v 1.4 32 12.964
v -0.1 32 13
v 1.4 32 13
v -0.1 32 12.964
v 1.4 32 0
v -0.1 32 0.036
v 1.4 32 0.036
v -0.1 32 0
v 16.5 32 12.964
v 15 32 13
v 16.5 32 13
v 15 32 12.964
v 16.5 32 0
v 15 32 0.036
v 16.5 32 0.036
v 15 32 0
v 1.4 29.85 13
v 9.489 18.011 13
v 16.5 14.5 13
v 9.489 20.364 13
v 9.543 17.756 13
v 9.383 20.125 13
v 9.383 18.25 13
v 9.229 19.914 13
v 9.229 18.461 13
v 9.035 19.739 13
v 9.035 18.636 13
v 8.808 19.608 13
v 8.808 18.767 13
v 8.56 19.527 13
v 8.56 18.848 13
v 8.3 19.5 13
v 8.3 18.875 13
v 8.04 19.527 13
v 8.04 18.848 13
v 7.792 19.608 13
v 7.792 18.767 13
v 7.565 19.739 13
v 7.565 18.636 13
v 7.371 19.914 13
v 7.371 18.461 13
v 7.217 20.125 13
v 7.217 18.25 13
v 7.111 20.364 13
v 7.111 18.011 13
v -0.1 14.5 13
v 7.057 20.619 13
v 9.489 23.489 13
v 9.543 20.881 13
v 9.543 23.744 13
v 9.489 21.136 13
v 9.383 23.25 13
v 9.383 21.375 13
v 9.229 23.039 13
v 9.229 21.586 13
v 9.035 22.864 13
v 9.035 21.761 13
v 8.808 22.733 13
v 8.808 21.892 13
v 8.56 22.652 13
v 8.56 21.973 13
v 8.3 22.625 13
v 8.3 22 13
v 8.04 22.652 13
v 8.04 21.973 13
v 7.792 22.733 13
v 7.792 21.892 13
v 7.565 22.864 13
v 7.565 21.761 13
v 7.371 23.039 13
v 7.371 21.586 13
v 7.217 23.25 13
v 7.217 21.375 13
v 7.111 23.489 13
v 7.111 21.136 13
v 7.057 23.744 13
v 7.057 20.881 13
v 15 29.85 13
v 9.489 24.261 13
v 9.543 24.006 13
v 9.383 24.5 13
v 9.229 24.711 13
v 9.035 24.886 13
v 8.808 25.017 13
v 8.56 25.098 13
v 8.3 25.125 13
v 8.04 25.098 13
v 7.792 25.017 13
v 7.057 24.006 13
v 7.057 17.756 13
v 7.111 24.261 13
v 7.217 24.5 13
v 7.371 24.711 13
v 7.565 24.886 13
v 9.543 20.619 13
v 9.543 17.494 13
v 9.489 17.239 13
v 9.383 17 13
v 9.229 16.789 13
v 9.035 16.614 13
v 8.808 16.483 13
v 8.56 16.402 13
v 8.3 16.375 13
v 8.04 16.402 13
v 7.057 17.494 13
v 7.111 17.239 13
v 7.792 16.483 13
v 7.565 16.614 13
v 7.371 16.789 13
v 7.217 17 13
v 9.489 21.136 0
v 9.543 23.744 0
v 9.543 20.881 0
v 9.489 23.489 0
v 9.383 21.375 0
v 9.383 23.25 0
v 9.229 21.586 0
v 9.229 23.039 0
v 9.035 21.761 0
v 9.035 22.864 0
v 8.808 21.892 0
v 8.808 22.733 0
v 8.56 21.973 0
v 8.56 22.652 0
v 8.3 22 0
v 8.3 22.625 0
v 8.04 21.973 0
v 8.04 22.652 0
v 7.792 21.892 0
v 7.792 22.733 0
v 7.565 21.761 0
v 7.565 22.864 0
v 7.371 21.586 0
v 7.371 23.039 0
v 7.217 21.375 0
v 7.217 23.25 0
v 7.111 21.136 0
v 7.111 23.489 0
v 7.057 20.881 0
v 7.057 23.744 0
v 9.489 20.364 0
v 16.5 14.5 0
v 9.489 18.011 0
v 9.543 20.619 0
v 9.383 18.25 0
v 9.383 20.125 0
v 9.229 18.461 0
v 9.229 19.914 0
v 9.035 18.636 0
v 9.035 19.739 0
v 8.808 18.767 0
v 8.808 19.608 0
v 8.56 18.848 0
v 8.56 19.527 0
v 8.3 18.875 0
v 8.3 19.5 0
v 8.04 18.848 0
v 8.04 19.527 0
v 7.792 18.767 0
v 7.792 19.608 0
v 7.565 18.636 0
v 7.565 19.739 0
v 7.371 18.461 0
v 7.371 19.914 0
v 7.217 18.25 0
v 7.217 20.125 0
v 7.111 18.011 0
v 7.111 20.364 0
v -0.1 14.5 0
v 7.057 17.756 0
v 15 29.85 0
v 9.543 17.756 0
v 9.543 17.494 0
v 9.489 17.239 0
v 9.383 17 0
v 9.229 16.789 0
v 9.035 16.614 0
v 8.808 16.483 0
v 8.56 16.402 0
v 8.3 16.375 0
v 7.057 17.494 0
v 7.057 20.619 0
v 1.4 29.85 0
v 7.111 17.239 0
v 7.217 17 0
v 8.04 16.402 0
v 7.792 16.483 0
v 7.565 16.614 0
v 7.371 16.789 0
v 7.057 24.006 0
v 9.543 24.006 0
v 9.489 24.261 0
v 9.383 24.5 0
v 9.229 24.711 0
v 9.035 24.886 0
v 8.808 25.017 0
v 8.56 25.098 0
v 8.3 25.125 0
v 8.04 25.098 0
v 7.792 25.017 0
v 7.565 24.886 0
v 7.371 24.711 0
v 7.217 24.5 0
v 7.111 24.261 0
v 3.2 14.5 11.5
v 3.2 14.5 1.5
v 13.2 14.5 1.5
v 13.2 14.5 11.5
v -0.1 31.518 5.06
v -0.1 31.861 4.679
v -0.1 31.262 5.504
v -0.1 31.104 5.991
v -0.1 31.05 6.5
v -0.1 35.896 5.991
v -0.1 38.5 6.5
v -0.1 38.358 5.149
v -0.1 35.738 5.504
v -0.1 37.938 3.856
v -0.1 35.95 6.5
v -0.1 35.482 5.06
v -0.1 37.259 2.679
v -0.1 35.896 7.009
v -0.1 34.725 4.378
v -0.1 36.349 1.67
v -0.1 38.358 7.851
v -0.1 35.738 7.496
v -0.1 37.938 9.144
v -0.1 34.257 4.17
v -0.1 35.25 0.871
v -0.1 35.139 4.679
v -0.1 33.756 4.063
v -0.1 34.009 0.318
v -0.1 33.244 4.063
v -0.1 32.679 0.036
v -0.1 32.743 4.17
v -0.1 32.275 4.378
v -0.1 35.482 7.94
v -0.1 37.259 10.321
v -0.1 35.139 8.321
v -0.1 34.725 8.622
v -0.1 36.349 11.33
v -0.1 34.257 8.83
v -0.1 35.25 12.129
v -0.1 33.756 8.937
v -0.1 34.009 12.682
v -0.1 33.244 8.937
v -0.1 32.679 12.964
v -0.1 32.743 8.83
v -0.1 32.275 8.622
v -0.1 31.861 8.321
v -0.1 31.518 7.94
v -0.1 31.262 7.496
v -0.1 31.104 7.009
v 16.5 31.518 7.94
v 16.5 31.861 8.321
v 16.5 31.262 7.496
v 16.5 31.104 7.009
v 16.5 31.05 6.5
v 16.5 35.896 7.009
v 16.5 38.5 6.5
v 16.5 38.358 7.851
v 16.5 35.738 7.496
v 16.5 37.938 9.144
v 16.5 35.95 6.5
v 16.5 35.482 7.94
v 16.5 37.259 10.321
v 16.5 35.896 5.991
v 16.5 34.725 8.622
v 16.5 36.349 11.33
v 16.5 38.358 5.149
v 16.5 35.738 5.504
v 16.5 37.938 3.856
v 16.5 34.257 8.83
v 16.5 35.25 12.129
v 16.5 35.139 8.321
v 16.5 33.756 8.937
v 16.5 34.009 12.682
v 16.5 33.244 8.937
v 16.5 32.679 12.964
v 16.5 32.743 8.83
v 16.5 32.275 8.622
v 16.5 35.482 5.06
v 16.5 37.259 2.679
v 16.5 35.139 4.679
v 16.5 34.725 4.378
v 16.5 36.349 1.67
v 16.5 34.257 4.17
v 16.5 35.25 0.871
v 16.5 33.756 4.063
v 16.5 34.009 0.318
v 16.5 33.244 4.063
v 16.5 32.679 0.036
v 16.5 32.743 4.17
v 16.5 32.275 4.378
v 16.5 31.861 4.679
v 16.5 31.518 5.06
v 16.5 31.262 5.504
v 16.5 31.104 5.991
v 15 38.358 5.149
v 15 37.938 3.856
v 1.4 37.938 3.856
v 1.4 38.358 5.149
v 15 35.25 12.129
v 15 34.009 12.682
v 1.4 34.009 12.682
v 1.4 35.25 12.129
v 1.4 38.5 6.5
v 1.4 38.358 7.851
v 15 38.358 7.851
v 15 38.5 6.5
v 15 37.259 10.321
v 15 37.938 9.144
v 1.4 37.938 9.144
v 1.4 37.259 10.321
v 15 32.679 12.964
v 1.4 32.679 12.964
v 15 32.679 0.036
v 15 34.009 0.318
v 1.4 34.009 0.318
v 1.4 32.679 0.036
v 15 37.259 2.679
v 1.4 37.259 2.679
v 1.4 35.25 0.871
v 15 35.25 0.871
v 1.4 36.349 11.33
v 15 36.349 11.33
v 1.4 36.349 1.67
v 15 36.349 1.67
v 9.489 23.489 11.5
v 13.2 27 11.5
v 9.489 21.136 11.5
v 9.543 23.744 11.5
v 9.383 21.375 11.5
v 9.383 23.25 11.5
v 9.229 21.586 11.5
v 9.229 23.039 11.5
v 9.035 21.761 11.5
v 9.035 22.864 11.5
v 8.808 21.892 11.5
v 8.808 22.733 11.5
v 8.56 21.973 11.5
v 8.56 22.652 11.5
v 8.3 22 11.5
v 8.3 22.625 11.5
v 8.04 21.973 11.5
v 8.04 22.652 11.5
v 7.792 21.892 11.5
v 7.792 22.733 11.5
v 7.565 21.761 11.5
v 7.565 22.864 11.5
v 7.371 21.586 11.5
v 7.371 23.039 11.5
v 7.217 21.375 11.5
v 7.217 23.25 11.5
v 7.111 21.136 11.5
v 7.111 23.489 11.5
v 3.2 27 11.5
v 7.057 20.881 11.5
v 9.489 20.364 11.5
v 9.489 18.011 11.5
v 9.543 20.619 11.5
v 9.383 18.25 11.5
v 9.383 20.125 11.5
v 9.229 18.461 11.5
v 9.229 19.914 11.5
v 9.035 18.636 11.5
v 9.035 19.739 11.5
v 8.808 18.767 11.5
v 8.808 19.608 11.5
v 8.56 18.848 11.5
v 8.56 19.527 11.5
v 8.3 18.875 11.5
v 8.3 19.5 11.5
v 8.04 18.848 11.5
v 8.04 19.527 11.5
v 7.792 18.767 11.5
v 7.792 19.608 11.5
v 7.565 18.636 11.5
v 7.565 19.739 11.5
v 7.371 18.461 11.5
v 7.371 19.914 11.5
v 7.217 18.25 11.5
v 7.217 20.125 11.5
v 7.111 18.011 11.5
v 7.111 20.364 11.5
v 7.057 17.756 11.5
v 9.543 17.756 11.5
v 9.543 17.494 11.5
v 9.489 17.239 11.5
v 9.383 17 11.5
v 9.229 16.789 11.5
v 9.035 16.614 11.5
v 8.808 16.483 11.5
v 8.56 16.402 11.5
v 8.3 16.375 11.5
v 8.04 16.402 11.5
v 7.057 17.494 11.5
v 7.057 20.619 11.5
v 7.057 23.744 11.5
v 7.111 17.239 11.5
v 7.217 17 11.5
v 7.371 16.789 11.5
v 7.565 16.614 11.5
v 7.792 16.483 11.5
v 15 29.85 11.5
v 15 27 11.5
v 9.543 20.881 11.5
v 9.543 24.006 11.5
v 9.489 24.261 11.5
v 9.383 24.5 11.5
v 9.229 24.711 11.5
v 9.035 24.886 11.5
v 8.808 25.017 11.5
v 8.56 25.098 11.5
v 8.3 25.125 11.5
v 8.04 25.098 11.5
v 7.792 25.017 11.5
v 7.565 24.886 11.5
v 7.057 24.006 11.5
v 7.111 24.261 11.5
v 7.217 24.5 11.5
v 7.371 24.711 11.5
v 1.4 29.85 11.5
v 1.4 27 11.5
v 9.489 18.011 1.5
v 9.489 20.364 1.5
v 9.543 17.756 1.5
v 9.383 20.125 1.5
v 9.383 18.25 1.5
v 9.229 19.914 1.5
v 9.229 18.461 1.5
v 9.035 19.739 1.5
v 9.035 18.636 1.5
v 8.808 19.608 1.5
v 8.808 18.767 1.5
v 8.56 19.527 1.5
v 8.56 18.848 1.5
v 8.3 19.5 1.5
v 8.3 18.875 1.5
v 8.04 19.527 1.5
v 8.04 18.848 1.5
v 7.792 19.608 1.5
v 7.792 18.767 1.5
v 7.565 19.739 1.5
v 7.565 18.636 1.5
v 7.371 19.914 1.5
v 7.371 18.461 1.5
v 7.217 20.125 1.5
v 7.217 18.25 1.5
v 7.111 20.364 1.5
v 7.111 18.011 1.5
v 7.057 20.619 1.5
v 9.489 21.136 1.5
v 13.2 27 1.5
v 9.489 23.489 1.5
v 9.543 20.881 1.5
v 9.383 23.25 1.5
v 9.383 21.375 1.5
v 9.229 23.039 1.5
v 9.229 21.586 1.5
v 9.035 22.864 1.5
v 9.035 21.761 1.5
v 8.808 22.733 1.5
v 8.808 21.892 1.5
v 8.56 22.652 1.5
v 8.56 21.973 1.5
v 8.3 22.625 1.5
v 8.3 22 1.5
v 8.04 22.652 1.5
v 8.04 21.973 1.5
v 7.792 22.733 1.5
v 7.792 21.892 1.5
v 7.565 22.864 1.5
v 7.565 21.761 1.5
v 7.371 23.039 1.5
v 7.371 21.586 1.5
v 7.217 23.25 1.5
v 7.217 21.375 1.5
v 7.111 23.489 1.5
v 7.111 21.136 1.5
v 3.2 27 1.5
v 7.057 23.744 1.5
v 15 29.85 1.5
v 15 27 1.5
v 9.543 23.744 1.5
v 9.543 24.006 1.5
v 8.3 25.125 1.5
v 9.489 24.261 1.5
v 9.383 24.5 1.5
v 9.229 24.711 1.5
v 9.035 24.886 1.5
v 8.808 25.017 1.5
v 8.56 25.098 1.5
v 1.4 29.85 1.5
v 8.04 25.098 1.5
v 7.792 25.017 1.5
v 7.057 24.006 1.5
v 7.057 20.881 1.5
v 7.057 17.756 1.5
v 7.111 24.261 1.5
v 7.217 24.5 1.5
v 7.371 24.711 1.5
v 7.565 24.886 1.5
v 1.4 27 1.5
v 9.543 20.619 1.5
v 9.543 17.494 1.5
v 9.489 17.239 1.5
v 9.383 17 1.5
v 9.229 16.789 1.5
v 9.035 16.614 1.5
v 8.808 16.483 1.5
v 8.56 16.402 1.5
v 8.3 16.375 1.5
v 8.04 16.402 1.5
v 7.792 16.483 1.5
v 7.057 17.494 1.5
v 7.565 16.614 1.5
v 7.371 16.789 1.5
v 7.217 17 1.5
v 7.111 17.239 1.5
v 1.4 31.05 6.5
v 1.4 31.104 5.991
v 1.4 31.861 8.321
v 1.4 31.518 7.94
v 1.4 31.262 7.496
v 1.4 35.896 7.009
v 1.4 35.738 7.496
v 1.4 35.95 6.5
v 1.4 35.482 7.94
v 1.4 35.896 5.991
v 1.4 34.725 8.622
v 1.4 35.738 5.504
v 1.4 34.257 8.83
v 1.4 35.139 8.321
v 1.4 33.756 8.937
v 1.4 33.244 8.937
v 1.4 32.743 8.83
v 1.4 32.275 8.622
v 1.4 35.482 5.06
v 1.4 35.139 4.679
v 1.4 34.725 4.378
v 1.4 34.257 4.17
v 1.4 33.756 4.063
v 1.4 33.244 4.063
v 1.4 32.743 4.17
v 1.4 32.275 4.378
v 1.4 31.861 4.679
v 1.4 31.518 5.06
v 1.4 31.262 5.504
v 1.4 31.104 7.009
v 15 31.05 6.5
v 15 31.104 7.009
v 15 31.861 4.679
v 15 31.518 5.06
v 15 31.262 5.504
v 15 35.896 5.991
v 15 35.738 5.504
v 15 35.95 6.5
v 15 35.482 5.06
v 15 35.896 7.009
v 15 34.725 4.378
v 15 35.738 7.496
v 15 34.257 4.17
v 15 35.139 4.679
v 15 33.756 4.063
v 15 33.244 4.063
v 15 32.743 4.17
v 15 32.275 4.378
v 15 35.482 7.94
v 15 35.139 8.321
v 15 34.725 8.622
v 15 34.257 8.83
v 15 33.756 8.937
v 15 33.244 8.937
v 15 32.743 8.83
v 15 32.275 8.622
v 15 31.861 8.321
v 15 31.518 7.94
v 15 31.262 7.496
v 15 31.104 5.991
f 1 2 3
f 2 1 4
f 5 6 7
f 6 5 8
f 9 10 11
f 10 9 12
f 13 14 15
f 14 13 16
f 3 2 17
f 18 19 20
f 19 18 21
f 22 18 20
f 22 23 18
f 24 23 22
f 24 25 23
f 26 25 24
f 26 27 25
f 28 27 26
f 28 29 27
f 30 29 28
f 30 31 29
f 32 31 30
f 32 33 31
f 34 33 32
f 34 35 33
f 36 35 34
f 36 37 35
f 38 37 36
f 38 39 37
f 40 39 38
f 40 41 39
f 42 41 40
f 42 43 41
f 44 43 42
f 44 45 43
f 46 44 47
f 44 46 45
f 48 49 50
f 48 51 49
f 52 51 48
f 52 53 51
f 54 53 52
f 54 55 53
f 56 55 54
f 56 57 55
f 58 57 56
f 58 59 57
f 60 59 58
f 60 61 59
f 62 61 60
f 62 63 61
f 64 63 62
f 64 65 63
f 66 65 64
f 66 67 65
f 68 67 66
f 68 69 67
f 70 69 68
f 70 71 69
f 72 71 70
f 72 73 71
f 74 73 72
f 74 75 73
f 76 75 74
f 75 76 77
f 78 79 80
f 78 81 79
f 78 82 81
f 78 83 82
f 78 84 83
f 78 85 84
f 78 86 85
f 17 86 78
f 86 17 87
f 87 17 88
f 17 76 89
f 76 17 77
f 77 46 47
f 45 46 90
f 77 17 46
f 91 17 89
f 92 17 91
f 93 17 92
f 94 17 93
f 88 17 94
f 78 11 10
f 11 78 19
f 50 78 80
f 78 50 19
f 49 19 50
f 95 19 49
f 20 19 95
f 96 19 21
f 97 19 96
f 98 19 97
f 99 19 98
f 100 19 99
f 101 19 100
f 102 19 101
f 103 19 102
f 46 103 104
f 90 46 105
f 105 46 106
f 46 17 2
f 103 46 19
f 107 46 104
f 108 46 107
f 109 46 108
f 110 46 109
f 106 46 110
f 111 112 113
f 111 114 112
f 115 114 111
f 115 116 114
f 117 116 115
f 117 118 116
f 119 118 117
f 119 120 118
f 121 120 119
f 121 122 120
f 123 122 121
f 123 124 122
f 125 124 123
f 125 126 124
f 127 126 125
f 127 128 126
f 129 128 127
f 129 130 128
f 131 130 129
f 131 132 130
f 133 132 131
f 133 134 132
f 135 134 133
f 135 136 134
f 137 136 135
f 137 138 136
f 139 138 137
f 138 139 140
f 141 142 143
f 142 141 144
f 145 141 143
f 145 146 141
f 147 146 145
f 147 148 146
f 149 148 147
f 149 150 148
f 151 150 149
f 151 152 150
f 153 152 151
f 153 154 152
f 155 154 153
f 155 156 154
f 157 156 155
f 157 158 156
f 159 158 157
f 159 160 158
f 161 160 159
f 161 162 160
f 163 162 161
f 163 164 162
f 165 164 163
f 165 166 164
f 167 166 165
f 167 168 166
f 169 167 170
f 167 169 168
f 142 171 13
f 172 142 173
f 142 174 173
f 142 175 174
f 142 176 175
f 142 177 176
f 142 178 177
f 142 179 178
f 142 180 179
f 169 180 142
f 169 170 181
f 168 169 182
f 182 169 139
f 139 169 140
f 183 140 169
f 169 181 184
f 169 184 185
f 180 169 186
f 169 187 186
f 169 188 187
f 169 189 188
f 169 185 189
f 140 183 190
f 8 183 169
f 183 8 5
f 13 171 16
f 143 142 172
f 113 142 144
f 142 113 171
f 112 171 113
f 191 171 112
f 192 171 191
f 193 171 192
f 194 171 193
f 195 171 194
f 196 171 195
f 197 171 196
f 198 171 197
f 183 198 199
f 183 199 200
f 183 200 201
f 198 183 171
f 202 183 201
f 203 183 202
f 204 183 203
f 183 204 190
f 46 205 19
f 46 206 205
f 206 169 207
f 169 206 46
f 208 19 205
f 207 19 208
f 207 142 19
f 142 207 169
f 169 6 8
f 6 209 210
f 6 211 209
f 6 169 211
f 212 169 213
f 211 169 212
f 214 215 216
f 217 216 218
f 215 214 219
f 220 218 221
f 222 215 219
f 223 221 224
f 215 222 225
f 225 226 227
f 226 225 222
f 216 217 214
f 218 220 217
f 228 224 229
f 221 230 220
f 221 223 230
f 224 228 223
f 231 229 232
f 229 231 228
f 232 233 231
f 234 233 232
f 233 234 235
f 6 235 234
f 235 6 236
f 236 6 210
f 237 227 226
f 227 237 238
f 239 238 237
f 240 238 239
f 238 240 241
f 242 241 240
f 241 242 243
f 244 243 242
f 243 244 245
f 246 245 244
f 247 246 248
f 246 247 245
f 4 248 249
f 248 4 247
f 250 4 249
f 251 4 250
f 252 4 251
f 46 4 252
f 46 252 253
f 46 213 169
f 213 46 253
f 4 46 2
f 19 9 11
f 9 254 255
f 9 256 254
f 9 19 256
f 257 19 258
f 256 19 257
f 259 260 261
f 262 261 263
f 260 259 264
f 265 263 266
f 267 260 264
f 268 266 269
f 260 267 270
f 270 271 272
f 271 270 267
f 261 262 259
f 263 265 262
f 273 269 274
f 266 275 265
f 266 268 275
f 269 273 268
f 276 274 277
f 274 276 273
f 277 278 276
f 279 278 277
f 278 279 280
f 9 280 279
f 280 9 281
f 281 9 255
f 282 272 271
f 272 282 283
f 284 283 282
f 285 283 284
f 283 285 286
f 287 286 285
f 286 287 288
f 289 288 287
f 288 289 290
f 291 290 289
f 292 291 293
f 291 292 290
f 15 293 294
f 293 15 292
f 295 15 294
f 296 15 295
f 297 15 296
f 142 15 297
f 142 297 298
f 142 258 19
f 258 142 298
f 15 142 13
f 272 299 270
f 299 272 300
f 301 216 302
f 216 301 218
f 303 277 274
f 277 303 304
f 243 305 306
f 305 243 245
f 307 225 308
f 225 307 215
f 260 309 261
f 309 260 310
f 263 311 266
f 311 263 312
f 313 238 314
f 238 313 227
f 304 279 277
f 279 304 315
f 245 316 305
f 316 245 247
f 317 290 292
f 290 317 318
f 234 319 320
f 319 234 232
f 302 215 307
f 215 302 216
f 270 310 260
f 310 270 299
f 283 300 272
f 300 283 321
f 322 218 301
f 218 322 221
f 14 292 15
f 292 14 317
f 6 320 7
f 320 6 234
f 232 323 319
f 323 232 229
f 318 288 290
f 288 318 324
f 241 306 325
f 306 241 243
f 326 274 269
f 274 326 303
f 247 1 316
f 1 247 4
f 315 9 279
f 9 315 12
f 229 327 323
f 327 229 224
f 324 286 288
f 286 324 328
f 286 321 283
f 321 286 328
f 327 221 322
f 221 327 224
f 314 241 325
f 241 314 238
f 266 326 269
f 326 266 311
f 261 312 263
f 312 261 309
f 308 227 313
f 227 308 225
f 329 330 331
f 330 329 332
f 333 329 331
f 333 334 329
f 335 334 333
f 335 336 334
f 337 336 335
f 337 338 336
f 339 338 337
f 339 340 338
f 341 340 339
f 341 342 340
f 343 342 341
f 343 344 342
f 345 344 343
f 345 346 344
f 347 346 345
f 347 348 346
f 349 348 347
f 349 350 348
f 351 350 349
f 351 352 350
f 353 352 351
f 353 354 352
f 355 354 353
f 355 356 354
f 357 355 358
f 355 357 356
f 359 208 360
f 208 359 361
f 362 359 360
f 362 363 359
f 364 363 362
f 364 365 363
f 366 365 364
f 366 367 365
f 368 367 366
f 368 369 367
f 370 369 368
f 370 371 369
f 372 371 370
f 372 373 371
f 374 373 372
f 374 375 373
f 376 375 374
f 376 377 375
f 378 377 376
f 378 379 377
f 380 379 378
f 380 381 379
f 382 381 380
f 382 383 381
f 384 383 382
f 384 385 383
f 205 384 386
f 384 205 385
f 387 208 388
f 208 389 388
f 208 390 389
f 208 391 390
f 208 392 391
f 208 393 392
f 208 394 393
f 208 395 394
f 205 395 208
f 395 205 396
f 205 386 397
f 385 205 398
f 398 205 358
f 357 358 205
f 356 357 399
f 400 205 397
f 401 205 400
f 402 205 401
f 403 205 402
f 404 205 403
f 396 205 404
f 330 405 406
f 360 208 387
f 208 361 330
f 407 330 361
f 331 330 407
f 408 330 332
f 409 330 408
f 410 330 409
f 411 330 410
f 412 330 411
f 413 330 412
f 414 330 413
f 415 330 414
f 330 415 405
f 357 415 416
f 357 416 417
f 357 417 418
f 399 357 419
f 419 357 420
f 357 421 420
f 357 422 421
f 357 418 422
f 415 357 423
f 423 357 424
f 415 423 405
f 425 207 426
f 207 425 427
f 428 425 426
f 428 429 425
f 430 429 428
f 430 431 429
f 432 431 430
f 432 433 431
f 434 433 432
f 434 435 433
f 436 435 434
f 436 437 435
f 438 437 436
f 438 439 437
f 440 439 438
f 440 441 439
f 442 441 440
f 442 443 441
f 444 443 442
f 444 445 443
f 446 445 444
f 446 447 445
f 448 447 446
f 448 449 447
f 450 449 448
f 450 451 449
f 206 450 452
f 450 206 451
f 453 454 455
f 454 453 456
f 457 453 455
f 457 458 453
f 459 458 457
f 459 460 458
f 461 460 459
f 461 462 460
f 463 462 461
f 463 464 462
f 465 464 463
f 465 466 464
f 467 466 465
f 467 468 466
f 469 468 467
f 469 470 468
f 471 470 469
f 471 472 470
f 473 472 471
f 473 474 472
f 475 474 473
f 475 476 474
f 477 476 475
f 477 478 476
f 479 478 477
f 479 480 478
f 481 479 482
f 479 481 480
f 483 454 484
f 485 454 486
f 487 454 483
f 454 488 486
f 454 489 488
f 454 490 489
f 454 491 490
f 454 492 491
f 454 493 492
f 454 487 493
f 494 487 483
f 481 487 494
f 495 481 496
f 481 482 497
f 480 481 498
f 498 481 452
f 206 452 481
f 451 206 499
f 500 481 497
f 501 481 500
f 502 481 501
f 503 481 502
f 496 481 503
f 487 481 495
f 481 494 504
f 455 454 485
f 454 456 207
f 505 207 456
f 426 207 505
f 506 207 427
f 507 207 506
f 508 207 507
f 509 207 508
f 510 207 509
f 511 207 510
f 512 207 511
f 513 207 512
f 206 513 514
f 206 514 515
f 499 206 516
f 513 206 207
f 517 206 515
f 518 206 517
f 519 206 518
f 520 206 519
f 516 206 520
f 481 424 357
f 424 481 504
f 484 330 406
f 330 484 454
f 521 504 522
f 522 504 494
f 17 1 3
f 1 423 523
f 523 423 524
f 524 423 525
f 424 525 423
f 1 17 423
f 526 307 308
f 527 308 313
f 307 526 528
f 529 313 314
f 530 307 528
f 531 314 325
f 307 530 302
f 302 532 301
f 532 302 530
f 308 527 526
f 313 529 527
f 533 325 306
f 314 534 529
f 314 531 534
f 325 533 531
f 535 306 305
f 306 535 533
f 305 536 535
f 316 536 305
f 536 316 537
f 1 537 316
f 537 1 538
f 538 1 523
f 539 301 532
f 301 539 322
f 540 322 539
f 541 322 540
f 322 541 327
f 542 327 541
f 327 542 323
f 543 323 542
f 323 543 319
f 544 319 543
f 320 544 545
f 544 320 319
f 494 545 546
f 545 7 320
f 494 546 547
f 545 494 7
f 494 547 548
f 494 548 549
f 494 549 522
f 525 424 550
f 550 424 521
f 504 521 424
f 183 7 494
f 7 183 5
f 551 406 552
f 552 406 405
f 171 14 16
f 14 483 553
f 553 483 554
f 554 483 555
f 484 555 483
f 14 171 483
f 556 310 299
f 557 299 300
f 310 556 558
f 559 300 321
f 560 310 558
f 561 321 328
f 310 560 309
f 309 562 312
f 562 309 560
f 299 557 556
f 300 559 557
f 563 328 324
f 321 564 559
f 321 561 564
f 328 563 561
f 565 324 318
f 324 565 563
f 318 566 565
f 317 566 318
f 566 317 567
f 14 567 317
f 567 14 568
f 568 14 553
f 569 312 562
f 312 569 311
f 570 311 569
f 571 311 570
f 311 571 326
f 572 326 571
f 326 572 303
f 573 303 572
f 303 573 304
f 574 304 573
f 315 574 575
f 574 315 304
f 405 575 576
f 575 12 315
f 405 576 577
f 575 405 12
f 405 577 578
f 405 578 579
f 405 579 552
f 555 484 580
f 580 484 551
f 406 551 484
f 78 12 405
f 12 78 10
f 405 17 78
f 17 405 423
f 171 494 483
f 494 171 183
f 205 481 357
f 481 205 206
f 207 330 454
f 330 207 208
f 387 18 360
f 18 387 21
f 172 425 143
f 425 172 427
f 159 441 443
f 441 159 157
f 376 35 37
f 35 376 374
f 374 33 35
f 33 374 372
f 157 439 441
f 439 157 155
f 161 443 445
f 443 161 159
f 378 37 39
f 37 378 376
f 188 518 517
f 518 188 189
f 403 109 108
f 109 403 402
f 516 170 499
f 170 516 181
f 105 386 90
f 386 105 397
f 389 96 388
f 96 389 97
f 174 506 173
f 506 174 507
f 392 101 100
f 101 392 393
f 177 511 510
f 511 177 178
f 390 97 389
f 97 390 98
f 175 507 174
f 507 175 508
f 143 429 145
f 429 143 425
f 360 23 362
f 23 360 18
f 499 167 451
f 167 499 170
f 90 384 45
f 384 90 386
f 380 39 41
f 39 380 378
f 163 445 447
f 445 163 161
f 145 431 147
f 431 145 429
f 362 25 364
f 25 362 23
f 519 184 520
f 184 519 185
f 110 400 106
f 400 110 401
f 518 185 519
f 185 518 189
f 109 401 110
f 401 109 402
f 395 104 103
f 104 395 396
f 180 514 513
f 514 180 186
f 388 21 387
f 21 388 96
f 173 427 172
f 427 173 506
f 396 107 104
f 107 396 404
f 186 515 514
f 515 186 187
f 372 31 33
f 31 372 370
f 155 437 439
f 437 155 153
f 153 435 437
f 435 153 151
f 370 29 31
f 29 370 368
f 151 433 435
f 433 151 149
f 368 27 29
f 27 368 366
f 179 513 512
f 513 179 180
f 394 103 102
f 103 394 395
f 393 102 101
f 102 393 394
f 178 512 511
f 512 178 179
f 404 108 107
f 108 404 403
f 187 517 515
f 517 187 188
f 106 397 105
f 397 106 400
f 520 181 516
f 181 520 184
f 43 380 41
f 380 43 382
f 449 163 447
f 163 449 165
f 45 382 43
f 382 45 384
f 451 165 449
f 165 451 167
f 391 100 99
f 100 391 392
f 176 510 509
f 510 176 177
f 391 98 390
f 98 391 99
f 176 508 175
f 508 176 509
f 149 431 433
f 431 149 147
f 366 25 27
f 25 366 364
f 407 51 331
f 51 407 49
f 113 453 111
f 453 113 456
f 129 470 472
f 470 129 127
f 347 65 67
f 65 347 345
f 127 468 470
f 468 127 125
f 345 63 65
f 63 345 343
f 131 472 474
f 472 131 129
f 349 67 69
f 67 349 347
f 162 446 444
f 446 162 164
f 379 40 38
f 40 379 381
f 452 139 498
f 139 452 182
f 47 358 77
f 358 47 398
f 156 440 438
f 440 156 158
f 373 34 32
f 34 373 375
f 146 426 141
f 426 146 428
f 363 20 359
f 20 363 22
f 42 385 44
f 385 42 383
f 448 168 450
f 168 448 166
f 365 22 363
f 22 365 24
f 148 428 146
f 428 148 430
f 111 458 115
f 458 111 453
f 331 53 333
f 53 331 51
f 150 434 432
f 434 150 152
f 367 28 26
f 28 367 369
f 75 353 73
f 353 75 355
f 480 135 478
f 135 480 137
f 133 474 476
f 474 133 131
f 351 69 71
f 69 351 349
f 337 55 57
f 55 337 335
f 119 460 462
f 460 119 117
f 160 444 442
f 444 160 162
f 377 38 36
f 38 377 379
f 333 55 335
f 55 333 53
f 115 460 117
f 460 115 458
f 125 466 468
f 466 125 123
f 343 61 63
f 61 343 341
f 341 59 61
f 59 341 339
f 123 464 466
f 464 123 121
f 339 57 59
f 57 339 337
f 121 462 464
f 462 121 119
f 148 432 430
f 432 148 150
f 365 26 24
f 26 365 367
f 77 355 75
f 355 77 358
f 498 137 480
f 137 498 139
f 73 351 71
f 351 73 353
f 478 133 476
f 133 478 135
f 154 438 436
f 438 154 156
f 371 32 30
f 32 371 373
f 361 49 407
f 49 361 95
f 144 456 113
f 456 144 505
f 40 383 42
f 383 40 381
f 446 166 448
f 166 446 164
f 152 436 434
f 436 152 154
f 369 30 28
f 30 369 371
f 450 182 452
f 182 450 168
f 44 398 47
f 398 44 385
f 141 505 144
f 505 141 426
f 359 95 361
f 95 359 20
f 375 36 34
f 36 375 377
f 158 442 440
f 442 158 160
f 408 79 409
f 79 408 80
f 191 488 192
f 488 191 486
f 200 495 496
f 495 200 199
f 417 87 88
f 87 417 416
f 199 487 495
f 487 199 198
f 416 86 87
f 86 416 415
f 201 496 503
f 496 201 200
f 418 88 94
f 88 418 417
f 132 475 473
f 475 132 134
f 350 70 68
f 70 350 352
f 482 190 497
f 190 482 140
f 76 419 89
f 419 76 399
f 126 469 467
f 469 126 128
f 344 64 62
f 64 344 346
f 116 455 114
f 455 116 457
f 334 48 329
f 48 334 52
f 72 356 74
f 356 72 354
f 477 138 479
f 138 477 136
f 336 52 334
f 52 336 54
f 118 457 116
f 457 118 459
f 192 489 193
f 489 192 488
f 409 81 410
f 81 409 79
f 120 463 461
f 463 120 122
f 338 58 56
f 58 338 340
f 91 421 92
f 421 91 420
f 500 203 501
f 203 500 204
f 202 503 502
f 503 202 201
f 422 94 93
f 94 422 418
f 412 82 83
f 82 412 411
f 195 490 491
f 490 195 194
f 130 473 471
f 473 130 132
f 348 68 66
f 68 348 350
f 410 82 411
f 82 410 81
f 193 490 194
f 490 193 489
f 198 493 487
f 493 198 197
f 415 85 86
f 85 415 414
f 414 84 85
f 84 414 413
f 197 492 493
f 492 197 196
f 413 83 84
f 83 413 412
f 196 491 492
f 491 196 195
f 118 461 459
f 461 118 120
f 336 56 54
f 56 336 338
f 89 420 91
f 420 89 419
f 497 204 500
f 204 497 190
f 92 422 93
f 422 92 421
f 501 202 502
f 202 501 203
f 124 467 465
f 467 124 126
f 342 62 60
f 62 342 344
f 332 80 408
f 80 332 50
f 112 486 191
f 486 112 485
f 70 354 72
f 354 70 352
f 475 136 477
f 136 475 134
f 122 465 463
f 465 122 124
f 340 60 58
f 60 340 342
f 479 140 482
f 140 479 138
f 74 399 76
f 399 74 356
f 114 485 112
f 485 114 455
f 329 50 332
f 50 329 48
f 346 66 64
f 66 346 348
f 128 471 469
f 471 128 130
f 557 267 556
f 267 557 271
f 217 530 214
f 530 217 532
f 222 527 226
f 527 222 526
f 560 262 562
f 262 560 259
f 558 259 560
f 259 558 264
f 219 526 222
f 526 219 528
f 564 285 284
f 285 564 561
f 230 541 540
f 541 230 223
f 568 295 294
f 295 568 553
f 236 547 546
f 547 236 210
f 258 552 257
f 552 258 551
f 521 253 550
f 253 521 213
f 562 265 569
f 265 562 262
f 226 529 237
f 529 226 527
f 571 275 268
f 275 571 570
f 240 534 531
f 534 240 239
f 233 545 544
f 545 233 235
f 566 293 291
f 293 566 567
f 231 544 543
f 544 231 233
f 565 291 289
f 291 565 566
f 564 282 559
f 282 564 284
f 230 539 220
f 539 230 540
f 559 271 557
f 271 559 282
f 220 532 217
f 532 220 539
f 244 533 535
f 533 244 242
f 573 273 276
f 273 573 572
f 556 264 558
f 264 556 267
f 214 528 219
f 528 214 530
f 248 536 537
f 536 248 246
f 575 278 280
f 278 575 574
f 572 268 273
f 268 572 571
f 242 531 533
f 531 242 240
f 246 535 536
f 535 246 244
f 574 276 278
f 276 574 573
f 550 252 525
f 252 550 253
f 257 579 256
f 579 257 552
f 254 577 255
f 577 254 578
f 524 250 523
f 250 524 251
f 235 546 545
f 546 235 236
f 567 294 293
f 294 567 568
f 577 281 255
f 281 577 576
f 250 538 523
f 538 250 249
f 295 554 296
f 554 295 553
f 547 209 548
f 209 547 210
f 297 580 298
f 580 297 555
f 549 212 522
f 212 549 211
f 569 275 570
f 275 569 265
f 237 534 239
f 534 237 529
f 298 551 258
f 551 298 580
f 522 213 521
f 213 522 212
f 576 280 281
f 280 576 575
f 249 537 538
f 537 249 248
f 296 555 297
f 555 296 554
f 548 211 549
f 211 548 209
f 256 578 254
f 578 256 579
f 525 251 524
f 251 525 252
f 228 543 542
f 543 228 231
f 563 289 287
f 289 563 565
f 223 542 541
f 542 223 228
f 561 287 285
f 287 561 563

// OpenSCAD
//
// PARAMETRIC Cable Chain v0.5
// Zerginator 10/2015
//



use <text_on.scad>

$fn = 30;

ChainDef = [[1,0]];
//ChainDef = [[1,0],[1,0],[1,0],[1,0],[1,0],[1,0],[1,0],[1,0],[1,0],[1,0],[1,30],[1,30],[1,30],[1,30],[1,30],[1,30],[1,0],[1,0],[1,0],[1,0],[1,0],[1,0],[1,0]];


// ===============================================================================
// Type
Type        =       2;         // 1: +45° Bewegbar, 2: +-45°
Round       =       1;         // Runder oder eckiger Typ

// ===============================================================================
// box parameters
width       =       16.6;       // width of the chainlink (Standard: 16.6)
height      =       13;         // height of the chainlink (Standard: 13)
//height      =       16.4;         // height of the chainlink (Standard: 13)
length      =       25;         // length of the chainlink  (Standard: 25, min 30 für Eckig)


// ===============================================================================
// === OUTPUT


// ===Check Consistency of Values
if((!Type && !Start && !End) || ((Round != 1) && (length/height<2.2)))
{
    // === IDIOT BOX (if imposible values were selected)
    cube([30,30,30]);
    color("red")
    text_on_cube("Doh!!", locn_vec=[15,15,15], cube_size=30, face="top", size=5, center=true); 
    color("red")
    text_on_cube("Error!!", locn_vec=[15,15,15], cube_size=30, face="front", size=5, center=true);   
    color("red")
    text_on_cube("Fehler!!", locn_vec=[15,15,15], cube_size=30, face="right", size=4, center=true);   
    color("red")
    text_on_cube("Défaut!!", locn_vec=[15,15,15], cube_size=30, face="left", size=4, center=true);   
    color("red")
    text_on_cube("ошибка!!", locn_vec=[15,15,15], cube_size=30, face="back", size=4, center=true); 
    color("red")
    text_on_cube("错误!!", locn_vec=[15,15,15], cube_size=30, face="bottom", size=4, center=true);     
}

else
    
// === Put the Chainlinks together to a single Cablechain
{
    if( Round == 1)
    {
        vec = select2(ChainDef,[1]);
        for (i = [1:len(ChainDef)]) { 
            c = sumv(vec,i-1,0);
            a = coslength(i,ChainDef,vec); 
            b = sinlength(i,ChainDef,vec); 

            pcsOChain(width, length, height, 0, a, b, c);
        }
    }

}


// ===============================================================================
// === Mathematikfunktionen
function sumv(v,i,s=0) = (i==s ? v[i] : v[i] + sumv(v,i-1,s));
function select(source_vector,select_vector)=
   [ for (i = [0 : len(select_vector) - 1]) source_vector[select_vector[i]] ];
function select2(source_vector,select_vector)=
   [ for (i = [0 : len(source_vector) - 1]) source_vector[i][1] ];
function coslength(j,ChainDef,vec,s=1)=
   (j==s ? (((height/13)*(length-10.5)) * cos(sumv(vec,j-1,0)-ChainDef[j-1][1])) : (((height/13)*(length-10.5))) * cos(sumv(vec,j-1,0)-ChainDef[j-1][1]) + coslength(j-1,ChainDef,vec));  
   
function sinlength(j,ChainDef,vec,s=1)=
   (j==s ? ((height/13)*(length-10.5))*(sin(sumv(vec,j-1,0)-ChainDef[j-1][1])) : ((height/13)*(length-10.5))*(sin(sumv(vec,j-1,0)-ChainDef[j-1][1])) + sinlength(j-1,ChainDef,vec));


// ===============================================================================
// === Generate Chain module
module pcsOChain(width, length, height, posx,posy,posz, ChainAngle) 
    {    
        translate([posx,posy,posz])
        translate([0,(height/13)*4.5,(height/13)*6.5])  
        rotate(a=ChainAngle, v=[1,0,0])
        translate([0,-(height/13)*4.5,-(height/13)*6.5])  
        if (Round != 1)
        {
            pcsMiddlePart(width, length, height);
            pcsOFront(width, length, height);
            translate([0,length - height - overlapping,0]) pcsOBack(width, length, height);
        }
        else
        {
            CableChain(width, length, height);
        }
    }





// ===============================================================================
// ===============================================================================
// ===============================================================================




// ===============================================================================
// === Cable Chain (Rund)

module CableChain(width, length, height)
{
translate([width,0,0])
rotate(a=90, v=[0,0,1])
difference()
    {
    union()
        {
        difference()
            {
                union()
                   {
                    translate([0,0.1,0])
                        rotate(a=0, v=[0,0,1])
                            cube([(height/13)*(length-7.5),width,(height/13)*13]);
                    translate([(height/13)*(length-7.5),0.1,(height/13)*6.5])
                        rotate(a=90, v=[-1,0,0])
                            cylinder(r=(height/13)*6.5, h=width);
                   }
                   
                translate([length / 8, width / 2, 0]) cylinder(d=2.5,h=height);
                translate([length / 8 * 2, width / 2, 0]) cylinder(d=2.5,h=height);
                translate([length / 8 * 3, width / 2, 0]) cylinder(d=2.5,h=height);
                /*
                hull()
                {
                    translate([length / 8, width / 2, 0]) cylinder(d=2.5,h=height);
                    translate([length / 8 * 3, width / 2, 0]) cylinder(d=2.5,h=height);
                }
                */

                union()
                    {
                    union()
                        {
                        if (Type == 1)
                        {
                            translate([(height/13)*-0.8,-1,(height/13)*6.4])
                                rotate(a=35, v=[0,-1,0])
                                    cube([(height/13)*9,width+1.5,(height/13)*5]);
                            translate([(height/13)*3.2,-1,(height/13)*9.9])
                                rotate(a=0, v=[0,0,1])
                                    cube([(height/13)*7,width+1.5,(height/13)*4]);
                        }
                        /*translate([(height/13)*4.6,2,(height/13)*6.5])
                            rotate(a=90, v=[1,0,0])   
                                cylinder(r=(height/13)*6.85, h=3);
                        */
                        //FEMALE
                            translate([(height/13)*(length-6),width+0.5,(height/13)*6.5])
                                rotate(a=90, v=[1,0,0])   
                                    cylinder(r=(height/13)*2.45, h=width+0.9);
                         /*translate([(height/13)*4.6,width+1.3,(height/13)*6.5])
                            rotate(a=90, v=[1,0,0])   
                                cylinder(r=(height/13)*6.85, h=3);*/
                        
                        }
                    /*difference()
                        {
                        translate([0,-0.5,0])
                            rotate(a=0, v=[0,0,1])
                                cube([(height/13)*5,width+0.9,(height/13)*4]);
                        {
                        translate([(height/13)*5,width+0.4,(height/13)*5.5])
                            rotate(a=90, v=[1,0,0])   
                                cylinder(r=(height/13)*5.5, h=width+0.9);
                            }
                        }*/
                    if (Type == 2)
                        {
                        /*difference()
                            {
                            translate([0,-0.5,9])
                                rotate(a=0, v=[0,0,1])
                                    cube([(height/13)*5,width+0.9,(height/13)*4]);
                            {
                            translate([(height/13)*5,width+0.4,(height/13)*7.5])
                                rotate(a=90, v=[1,0,0])   
                                    cylinder(r=(height/13)*5.5, h=width+0.9);
                                }
                            }*/
                        }
                    }
                }
                
                // MALE
                /*difference()
                {
                    translate([(height/13)*4.5,width-0.3,(height/13)*6.5])
                        rotate(a=90, v=[1,0,0])   
                            cylinder(r=(height/13)*1.85, h=width-0.8); 
                    translate([(height/13)-1,-2,(height/13)*4.5])
                        rotate(a=-20, v=[0,0,1])
                            cube([4,4,4]);
                    translate([(height/13)-1,18.8,(height/13)*4.5]) //2.5
                            rotate(a=-70, v=[0,0,1]) //-15
                                cube([4,4,4]);
                } */
        } 
        
    union()
        {
            translate([(height/13)*-1,3.4,1.5])
                rotate(a=0, v=[0,0,1])
                    cube([(height/13)*(length+1),width-6.6,height-3]);
            translate([(height/13)*(length-9.65),3.4,(height/13)*3.5])
                rotate(a=0, v=[0,0,1])
                    cube([(height/13)*8,width-6.6,(height/13)*10]);    
            
            if (Type == 1)
            {
                translate([(height/13)*-1,3.4,(height/13)*-1.5])
                    rotate(a=0, v=[0,0,1])
                        cube([(height/13)*8,width-6.6,(height/13)*13]);
                translate([(height/13)*(length-12.5),1.6,(height/13)*9.7])
                    rotate(a=-60, v=[1,0,0])
                        cube([(height/13)*11,3,3]);  
                translate([(height/13)*(length-12.5),width-1.4,(height/13)*9.7])
                    rotate(a=150, v=[1,0,0])
                        cube([(height/13)*11,3,3]);
                translate([(height/13)*(length-12.5),1.6,1.5])
                    rotate(a=0, v=[0,0,1])
                        cube([(height/13)*6,width-3,((height/13)*8.2)+((height/13)*1.5-1.5)]);
                translate([(height/13)*(length-9.65),1.6,0])
                    rotate(a=0, v=[0,0,1])
                        cube([(height/13)*10,width-3,(height/13)*9.7]);
            }
            
            if (Type == 2)
            {
            /*translate([(height/13)*-1,3.4,(height/13)*-1.5])
                    rotate(a=0, v=[0,0,1])
                        cube([(height/13)*8,width-6.6,(height/13)*16]);*/
            translate([(height/13)*(length-12.5),1.6,1.5])
                    rotate(a=0, v=[0,0,1])
                        cube([(height/13)*6,width-3,height-3]);

            translate([(height/13)*(length-9.65),1.6,0])
                rotate(a=0, v=[0,0,1])
                    cube([(height/13)*10,width-3,(height/13)*13]);
            }
        }
    }    
    
} // END CABLE CHAIN RUND
